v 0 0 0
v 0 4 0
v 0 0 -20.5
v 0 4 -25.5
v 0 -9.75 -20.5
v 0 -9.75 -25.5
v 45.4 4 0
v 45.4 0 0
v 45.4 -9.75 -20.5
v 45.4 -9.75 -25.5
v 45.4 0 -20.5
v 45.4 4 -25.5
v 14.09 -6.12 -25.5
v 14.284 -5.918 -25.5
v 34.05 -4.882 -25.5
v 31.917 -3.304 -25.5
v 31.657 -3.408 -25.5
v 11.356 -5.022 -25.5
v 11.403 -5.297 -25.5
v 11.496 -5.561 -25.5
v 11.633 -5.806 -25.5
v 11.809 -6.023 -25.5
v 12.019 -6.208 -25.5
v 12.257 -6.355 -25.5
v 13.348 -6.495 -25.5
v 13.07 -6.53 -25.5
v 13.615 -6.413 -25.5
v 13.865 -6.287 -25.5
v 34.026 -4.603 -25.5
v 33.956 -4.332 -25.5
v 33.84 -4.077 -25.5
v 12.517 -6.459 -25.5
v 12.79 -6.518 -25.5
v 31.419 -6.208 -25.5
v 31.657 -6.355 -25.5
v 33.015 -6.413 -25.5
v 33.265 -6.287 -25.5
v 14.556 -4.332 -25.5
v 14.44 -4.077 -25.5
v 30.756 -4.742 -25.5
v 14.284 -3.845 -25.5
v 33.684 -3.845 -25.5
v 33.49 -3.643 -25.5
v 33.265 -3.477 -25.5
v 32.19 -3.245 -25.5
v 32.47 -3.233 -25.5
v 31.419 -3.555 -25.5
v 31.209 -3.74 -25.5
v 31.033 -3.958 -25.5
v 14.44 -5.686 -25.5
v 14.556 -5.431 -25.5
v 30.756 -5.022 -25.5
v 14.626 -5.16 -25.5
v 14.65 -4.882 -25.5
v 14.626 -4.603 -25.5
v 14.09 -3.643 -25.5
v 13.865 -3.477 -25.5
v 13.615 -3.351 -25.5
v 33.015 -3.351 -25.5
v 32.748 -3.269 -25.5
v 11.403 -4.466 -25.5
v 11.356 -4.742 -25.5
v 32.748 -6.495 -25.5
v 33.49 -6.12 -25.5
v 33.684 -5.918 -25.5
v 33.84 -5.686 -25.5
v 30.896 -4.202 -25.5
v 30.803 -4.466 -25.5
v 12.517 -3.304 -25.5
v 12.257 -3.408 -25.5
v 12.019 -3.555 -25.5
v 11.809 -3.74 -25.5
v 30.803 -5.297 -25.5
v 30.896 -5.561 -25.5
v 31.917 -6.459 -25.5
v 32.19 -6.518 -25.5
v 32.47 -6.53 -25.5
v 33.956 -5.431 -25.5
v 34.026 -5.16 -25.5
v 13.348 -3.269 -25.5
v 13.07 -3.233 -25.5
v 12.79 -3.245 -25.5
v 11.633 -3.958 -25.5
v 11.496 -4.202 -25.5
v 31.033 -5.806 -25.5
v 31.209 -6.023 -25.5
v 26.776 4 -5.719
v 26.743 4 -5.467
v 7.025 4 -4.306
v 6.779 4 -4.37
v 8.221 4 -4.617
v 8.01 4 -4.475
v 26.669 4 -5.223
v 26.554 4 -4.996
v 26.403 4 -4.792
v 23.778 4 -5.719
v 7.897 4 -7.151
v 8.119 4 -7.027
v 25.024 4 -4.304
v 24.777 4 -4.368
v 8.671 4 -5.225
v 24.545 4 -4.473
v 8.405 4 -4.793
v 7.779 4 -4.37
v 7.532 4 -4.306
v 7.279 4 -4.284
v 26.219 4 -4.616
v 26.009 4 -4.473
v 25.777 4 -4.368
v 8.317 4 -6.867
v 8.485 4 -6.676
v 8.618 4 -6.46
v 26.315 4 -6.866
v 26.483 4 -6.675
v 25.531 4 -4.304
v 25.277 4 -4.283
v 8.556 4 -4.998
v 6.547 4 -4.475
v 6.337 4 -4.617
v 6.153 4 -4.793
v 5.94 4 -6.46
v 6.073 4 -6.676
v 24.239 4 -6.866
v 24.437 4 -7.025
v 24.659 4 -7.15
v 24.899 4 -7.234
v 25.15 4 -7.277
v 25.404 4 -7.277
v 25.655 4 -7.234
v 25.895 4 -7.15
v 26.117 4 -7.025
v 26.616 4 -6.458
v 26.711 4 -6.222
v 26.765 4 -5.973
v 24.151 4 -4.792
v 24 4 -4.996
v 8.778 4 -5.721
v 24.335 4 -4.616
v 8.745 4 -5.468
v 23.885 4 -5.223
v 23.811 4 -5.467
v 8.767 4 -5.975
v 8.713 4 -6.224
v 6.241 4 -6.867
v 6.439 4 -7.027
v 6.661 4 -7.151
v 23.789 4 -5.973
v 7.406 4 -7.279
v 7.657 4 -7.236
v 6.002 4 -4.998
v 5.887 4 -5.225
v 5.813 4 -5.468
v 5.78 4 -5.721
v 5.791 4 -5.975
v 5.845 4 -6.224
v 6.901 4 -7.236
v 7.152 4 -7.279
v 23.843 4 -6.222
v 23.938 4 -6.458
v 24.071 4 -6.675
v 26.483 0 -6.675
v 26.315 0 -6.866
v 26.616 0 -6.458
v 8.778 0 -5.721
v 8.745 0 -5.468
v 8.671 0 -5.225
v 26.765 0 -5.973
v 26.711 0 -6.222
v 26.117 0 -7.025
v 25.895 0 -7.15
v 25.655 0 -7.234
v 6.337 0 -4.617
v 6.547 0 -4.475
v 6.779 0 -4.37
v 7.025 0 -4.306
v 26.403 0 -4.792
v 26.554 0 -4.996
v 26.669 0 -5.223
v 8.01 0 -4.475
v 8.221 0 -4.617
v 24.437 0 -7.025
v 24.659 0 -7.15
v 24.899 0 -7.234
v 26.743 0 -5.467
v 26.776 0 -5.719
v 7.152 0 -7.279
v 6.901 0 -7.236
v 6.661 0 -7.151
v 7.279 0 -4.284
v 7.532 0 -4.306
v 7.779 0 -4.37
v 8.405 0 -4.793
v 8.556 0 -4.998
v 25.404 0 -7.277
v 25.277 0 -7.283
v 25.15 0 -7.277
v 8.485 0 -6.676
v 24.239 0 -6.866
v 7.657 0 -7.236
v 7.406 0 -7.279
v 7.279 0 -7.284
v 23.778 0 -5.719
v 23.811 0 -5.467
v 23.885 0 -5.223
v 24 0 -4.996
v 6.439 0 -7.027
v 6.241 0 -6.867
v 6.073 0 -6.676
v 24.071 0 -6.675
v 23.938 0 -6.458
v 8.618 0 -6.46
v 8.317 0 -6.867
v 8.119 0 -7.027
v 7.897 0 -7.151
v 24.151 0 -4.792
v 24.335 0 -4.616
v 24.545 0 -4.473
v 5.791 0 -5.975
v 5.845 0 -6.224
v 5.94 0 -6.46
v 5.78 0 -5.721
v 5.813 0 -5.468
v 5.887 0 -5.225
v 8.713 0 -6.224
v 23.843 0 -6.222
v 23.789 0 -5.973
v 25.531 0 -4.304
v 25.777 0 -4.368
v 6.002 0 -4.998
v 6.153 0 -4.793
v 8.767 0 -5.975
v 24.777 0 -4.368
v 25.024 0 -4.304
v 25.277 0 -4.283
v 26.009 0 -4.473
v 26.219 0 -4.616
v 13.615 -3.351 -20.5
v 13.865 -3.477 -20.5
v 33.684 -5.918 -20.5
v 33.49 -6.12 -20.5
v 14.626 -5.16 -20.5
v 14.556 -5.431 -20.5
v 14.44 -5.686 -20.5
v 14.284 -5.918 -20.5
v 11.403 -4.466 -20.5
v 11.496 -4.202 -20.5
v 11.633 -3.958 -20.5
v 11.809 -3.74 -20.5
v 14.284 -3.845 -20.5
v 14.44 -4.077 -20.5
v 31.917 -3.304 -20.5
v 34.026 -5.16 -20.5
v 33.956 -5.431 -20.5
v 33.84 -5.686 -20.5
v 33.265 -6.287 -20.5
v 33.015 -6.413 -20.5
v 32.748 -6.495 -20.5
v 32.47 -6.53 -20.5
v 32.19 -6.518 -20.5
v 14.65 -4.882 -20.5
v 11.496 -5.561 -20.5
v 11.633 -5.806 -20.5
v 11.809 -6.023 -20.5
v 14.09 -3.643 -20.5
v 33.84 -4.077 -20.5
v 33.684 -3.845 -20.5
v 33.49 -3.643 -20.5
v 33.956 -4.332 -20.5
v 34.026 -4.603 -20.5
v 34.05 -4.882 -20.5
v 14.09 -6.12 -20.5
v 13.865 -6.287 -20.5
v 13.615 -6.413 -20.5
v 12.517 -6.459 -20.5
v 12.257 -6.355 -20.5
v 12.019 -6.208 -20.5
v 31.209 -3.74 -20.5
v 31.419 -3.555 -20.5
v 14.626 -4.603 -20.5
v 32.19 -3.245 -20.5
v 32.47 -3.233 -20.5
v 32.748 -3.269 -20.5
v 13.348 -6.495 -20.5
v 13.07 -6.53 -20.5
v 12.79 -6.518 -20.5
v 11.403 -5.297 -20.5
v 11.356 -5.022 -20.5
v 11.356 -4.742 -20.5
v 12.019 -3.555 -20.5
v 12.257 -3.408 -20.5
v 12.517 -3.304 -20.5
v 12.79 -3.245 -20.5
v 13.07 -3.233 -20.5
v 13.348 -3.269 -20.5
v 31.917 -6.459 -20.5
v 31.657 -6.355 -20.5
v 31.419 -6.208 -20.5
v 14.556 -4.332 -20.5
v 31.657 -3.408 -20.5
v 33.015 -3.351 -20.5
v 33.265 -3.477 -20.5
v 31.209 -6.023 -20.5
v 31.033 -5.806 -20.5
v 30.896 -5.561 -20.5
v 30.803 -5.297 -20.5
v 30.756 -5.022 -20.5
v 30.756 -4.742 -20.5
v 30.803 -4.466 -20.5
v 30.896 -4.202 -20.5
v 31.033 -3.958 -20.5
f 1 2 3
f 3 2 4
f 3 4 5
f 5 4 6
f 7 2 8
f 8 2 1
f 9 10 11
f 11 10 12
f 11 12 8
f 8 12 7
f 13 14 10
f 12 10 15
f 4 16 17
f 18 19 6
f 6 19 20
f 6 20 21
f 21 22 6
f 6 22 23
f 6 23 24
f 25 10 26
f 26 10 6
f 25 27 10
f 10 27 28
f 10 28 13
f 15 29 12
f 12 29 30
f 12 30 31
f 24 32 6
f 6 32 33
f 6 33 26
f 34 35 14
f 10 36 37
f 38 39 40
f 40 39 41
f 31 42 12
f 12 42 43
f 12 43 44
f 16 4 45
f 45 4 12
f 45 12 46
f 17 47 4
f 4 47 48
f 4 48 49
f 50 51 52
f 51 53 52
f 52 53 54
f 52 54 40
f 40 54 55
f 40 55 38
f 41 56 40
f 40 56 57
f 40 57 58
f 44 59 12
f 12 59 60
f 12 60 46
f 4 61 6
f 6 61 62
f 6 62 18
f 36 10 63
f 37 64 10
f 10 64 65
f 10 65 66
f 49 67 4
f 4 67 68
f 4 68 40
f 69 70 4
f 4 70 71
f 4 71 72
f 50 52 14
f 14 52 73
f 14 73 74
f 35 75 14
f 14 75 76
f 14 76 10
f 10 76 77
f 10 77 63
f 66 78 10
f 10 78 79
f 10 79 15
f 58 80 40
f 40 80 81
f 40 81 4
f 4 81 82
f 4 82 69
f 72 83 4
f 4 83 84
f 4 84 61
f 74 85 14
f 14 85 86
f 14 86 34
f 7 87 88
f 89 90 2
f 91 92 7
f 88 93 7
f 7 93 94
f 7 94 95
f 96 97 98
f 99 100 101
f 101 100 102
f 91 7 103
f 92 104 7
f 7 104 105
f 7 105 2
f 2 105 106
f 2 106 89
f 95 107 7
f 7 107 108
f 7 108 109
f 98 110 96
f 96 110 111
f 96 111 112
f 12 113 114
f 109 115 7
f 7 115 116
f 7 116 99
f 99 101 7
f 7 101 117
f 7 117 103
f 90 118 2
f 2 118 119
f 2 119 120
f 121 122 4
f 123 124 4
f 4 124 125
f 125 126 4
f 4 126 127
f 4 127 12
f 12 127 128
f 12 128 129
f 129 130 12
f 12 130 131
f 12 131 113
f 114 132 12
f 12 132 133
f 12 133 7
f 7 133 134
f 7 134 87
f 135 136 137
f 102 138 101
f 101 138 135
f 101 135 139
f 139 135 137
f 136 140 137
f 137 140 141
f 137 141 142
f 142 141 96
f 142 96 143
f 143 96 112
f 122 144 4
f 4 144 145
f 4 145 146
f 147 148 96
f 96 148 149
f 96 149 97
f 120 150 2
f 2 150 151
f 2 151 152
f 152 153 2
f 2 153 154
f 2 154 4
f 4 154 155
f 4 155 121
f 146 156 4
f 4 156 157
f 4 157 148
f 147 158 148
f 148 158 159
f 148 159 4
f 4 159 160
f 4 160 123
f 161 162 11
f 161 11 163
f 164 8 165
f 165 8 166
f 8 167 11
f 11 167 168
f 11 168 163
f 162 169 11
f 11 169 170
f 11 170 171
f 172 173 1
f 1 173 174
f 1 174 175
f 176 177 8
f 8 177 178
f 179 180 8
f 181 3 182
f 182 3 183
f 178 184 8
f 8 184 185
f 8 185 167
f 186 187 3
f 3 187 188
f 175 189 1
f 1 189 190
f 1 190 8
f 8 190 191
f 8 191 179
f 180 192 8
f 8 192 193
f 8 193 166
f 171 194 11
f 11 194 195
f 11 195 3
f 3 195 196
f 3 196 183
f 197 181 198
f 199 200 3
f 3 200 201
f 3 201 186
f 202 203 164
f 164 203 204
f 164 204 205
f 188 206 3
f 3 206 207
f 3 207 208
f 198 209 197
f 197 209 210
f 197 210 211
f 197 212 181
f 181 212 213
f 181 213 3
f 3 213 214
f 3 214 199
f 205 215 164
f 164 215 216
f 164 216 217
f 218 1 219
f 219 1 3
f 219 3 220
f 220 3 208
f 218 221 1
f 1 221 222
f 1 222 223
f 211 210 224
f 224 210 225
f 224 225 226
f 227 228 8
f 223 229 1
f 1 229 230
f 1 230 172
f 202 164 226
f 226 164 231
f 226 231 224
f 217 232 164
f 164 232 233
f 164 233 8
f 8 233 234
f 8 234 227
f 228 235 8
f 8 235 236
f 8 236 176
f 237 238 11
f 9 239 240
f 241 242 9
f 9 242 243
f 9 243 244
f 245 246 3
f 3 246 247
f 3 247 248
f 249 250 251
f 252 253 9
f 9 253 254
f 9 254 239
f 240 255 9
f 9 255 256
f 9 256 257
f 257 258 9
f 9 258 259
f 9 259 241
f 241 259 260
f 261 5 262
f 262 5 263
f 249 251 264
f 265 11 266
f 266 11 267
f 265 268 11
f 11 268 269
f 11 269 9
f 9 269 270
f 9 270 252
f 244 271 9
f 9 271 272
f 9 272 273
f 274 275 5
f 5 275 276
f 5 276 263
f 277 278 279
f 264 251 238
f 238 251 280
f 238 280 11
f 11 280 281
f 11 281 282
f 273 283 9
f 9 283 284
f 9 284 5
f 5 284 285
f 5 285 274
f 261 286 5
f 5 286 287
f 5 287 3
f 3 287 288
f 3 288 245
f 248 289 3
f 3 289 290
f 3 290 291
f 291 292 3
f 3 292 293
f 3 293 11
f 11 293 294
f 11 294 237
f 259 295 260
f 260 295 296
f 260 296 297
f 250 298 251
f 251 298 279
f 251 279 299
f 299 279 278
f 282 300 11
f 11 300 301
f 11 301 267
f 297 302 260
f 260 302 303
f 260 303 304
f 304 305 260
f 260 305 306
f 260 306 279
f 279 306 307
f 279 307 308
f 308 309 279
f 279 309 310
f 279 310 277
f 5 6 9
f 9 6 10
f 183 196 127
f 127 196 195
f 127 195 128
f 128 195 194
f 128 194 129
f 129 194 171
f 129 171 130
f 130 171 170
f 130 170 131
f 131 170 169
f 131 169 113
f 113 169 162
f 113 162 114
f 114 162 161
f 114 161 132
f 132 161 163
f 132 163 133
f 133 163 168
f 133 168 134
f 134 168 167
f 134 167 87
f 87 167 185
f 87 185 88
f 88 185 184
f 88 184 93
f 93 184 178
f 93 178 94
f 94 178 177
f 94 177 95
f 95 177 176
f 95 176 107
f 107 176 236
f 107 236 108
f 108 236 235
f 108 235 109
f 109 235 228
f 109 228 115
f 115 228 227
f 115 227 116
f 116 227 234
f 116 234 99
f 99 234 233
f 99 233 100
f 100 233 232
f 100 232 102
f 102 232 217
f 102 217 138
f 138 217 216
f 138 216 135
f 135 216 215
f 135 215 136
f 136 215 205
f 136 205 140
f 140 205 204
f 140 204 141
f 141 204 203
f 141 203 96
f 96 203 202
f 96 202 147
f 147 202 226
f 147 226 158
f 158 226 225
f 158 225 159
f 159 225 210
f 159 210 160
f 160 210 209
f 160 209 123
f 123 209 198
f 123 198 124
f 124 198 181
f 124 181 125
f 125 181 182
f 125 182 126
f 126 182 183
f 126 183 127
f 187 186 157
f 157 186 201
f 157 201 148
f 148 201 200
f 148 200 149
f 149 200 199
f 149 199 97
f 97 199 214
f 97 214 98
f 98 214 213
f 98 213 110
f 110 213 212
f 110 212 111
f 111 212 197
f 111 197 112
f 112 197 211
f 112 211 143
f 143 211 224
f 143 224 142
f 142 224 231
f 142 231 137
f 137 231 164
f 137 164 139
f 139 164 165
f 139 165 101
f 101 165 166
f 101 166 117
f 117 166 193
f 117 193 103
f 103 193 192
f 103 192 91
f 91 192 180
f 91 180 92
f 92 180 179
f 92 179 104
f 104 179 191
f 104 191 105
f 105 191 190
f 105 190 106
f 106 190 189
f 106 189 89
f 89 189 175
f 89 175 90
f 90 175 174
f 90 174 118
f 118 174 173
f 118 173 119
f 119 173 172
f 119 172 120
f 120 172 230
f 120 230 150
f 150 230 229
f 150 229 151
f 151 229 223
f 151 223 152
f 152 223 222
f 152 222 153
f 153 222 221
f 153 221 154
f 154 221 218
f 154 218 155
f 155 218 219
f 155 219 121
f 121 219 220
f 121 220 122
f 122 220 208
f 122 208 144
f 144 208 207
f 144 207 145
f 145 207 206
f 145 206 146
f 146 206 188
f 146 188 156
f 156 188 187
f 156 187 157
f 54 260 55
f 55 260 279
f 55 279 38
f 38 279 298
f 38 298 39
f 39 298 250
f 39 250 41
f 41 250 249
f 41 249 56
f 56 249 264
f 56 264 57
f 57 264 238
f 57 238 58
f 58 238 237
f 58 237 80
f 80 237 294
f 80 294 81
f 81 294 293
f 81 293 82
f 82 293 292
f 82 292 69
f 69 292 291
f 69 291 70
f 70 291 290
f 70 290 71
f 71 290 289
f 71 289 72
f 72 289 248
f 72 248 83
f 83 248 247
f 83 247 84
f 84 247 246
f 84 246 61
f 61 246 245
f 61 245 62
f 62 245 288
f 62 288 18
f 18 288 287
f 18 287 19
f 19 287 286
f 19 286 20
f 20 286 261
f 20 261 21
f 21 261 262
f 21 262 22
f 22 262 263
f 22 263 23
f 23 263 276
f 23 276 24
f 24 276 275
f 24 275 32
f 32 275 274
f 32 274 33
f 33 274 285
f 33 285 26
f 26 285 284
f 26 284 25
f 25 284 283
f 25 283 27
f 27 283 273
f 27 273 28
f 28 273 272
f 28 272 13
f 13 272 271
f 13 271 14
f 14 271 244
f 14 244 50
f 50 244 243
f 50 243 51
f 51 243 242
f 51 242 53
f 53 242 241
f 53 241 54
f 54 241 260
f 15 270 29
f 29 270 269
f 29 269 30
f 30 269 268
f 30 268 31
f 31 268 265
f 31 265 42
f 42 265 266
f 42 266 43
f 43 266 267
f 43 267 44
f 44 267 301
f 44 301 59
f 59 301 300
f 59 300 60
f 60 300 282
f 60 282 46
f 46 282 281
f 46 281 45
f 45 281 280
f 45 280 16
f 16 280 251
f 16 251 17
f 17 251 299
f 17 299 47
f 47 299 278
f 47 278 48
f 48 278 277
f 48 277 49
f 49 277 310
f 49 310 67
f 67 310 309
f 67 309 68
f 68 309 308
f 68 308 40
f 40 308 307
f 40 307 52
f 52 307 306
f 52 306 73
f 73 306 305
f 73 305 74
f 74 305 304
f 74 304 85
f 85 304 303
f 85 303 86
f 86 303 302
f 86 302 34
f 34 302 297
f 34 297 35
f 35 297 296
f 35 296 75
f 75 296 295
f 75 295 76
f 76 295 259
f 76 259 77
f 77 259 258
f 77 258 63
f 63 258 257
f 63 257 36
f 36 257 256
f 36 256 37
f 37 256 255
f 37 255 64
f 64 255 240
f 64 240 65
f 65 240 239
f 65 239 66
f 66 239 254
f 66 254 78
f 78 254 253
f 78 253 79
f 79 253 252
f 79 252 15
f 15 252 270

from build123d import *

# Parameters (mm, degrees)
SKETCH1_W           = 45.4
SKETCH1_H           = 25.5
BOSS_EXTRUDE1_DEPTH = 4
SKETCH2_W           = 45.4
SKETCH2_H           = 5
BOSS_EXTRUDE2_DEPTH = 9.75
SKETCH3_R           = 1.5
CUT_EXTRUDE1_DEPTH  = 10
SKETCH7_R           = 1.65
CUT_EXTRUDE3_DEPTH  = 10


with BuildPart() as part:
    # Sketch1 → Boss-Extrude1 (new body)
    with BuildSketch(Plane(origin=(0, 0, 0), x_dir=(1, 0, 0), z_dir=(0, 1, 0))):
        with Locations((22.7, 12.75)):
            Rectangle(SKETCH1_W, SKETCH1_H)
    extrude(amount=BOSS_EXTRUDE1_DEPTH)

    # Sketch2 → Boss-Extrude2 (add)
    with BuildSketch(Plane.XZ):
        with Locations((22.7, -23)):
            Rectangle(SKETCH2_W, SKETCH2_H)
    extrude(amount=BOSS_EXTRUDE2_DEPTH)

    # Sketch3 → Cut-Extrude1 (cut)
    with BuildSketch(Plane(origin=(0, 4, 0), x_dir=(1, 0, 0), z_dir=(0, 1, 0))):
        with Locations((7.278895007, 5.784390941)):
            Circle(SKETCH3_R)
        with Locations((25.277013577, 5.782705683)):
            Circle(SKETCH3_R)
    extrude(amount=-CUT_EXTRUDE1_DEPTH, mode=Mode.SUBTRACT)

    # Sketch7 → Cut-Extrude3 (cut)
    with BuildSketch(Plane.XY.offset(-20.5)):
        with Locations((32.4, -4.881628377)):
            Circle(SKETCH7_R)
        with Locations((13, -4.881628377)):
            Circle(SKETCH7_R)
    extrude(amount=-CUT_EXTRUDE3_DEPTH, mode=Mode.SUBTRACT)


solid = part.part
